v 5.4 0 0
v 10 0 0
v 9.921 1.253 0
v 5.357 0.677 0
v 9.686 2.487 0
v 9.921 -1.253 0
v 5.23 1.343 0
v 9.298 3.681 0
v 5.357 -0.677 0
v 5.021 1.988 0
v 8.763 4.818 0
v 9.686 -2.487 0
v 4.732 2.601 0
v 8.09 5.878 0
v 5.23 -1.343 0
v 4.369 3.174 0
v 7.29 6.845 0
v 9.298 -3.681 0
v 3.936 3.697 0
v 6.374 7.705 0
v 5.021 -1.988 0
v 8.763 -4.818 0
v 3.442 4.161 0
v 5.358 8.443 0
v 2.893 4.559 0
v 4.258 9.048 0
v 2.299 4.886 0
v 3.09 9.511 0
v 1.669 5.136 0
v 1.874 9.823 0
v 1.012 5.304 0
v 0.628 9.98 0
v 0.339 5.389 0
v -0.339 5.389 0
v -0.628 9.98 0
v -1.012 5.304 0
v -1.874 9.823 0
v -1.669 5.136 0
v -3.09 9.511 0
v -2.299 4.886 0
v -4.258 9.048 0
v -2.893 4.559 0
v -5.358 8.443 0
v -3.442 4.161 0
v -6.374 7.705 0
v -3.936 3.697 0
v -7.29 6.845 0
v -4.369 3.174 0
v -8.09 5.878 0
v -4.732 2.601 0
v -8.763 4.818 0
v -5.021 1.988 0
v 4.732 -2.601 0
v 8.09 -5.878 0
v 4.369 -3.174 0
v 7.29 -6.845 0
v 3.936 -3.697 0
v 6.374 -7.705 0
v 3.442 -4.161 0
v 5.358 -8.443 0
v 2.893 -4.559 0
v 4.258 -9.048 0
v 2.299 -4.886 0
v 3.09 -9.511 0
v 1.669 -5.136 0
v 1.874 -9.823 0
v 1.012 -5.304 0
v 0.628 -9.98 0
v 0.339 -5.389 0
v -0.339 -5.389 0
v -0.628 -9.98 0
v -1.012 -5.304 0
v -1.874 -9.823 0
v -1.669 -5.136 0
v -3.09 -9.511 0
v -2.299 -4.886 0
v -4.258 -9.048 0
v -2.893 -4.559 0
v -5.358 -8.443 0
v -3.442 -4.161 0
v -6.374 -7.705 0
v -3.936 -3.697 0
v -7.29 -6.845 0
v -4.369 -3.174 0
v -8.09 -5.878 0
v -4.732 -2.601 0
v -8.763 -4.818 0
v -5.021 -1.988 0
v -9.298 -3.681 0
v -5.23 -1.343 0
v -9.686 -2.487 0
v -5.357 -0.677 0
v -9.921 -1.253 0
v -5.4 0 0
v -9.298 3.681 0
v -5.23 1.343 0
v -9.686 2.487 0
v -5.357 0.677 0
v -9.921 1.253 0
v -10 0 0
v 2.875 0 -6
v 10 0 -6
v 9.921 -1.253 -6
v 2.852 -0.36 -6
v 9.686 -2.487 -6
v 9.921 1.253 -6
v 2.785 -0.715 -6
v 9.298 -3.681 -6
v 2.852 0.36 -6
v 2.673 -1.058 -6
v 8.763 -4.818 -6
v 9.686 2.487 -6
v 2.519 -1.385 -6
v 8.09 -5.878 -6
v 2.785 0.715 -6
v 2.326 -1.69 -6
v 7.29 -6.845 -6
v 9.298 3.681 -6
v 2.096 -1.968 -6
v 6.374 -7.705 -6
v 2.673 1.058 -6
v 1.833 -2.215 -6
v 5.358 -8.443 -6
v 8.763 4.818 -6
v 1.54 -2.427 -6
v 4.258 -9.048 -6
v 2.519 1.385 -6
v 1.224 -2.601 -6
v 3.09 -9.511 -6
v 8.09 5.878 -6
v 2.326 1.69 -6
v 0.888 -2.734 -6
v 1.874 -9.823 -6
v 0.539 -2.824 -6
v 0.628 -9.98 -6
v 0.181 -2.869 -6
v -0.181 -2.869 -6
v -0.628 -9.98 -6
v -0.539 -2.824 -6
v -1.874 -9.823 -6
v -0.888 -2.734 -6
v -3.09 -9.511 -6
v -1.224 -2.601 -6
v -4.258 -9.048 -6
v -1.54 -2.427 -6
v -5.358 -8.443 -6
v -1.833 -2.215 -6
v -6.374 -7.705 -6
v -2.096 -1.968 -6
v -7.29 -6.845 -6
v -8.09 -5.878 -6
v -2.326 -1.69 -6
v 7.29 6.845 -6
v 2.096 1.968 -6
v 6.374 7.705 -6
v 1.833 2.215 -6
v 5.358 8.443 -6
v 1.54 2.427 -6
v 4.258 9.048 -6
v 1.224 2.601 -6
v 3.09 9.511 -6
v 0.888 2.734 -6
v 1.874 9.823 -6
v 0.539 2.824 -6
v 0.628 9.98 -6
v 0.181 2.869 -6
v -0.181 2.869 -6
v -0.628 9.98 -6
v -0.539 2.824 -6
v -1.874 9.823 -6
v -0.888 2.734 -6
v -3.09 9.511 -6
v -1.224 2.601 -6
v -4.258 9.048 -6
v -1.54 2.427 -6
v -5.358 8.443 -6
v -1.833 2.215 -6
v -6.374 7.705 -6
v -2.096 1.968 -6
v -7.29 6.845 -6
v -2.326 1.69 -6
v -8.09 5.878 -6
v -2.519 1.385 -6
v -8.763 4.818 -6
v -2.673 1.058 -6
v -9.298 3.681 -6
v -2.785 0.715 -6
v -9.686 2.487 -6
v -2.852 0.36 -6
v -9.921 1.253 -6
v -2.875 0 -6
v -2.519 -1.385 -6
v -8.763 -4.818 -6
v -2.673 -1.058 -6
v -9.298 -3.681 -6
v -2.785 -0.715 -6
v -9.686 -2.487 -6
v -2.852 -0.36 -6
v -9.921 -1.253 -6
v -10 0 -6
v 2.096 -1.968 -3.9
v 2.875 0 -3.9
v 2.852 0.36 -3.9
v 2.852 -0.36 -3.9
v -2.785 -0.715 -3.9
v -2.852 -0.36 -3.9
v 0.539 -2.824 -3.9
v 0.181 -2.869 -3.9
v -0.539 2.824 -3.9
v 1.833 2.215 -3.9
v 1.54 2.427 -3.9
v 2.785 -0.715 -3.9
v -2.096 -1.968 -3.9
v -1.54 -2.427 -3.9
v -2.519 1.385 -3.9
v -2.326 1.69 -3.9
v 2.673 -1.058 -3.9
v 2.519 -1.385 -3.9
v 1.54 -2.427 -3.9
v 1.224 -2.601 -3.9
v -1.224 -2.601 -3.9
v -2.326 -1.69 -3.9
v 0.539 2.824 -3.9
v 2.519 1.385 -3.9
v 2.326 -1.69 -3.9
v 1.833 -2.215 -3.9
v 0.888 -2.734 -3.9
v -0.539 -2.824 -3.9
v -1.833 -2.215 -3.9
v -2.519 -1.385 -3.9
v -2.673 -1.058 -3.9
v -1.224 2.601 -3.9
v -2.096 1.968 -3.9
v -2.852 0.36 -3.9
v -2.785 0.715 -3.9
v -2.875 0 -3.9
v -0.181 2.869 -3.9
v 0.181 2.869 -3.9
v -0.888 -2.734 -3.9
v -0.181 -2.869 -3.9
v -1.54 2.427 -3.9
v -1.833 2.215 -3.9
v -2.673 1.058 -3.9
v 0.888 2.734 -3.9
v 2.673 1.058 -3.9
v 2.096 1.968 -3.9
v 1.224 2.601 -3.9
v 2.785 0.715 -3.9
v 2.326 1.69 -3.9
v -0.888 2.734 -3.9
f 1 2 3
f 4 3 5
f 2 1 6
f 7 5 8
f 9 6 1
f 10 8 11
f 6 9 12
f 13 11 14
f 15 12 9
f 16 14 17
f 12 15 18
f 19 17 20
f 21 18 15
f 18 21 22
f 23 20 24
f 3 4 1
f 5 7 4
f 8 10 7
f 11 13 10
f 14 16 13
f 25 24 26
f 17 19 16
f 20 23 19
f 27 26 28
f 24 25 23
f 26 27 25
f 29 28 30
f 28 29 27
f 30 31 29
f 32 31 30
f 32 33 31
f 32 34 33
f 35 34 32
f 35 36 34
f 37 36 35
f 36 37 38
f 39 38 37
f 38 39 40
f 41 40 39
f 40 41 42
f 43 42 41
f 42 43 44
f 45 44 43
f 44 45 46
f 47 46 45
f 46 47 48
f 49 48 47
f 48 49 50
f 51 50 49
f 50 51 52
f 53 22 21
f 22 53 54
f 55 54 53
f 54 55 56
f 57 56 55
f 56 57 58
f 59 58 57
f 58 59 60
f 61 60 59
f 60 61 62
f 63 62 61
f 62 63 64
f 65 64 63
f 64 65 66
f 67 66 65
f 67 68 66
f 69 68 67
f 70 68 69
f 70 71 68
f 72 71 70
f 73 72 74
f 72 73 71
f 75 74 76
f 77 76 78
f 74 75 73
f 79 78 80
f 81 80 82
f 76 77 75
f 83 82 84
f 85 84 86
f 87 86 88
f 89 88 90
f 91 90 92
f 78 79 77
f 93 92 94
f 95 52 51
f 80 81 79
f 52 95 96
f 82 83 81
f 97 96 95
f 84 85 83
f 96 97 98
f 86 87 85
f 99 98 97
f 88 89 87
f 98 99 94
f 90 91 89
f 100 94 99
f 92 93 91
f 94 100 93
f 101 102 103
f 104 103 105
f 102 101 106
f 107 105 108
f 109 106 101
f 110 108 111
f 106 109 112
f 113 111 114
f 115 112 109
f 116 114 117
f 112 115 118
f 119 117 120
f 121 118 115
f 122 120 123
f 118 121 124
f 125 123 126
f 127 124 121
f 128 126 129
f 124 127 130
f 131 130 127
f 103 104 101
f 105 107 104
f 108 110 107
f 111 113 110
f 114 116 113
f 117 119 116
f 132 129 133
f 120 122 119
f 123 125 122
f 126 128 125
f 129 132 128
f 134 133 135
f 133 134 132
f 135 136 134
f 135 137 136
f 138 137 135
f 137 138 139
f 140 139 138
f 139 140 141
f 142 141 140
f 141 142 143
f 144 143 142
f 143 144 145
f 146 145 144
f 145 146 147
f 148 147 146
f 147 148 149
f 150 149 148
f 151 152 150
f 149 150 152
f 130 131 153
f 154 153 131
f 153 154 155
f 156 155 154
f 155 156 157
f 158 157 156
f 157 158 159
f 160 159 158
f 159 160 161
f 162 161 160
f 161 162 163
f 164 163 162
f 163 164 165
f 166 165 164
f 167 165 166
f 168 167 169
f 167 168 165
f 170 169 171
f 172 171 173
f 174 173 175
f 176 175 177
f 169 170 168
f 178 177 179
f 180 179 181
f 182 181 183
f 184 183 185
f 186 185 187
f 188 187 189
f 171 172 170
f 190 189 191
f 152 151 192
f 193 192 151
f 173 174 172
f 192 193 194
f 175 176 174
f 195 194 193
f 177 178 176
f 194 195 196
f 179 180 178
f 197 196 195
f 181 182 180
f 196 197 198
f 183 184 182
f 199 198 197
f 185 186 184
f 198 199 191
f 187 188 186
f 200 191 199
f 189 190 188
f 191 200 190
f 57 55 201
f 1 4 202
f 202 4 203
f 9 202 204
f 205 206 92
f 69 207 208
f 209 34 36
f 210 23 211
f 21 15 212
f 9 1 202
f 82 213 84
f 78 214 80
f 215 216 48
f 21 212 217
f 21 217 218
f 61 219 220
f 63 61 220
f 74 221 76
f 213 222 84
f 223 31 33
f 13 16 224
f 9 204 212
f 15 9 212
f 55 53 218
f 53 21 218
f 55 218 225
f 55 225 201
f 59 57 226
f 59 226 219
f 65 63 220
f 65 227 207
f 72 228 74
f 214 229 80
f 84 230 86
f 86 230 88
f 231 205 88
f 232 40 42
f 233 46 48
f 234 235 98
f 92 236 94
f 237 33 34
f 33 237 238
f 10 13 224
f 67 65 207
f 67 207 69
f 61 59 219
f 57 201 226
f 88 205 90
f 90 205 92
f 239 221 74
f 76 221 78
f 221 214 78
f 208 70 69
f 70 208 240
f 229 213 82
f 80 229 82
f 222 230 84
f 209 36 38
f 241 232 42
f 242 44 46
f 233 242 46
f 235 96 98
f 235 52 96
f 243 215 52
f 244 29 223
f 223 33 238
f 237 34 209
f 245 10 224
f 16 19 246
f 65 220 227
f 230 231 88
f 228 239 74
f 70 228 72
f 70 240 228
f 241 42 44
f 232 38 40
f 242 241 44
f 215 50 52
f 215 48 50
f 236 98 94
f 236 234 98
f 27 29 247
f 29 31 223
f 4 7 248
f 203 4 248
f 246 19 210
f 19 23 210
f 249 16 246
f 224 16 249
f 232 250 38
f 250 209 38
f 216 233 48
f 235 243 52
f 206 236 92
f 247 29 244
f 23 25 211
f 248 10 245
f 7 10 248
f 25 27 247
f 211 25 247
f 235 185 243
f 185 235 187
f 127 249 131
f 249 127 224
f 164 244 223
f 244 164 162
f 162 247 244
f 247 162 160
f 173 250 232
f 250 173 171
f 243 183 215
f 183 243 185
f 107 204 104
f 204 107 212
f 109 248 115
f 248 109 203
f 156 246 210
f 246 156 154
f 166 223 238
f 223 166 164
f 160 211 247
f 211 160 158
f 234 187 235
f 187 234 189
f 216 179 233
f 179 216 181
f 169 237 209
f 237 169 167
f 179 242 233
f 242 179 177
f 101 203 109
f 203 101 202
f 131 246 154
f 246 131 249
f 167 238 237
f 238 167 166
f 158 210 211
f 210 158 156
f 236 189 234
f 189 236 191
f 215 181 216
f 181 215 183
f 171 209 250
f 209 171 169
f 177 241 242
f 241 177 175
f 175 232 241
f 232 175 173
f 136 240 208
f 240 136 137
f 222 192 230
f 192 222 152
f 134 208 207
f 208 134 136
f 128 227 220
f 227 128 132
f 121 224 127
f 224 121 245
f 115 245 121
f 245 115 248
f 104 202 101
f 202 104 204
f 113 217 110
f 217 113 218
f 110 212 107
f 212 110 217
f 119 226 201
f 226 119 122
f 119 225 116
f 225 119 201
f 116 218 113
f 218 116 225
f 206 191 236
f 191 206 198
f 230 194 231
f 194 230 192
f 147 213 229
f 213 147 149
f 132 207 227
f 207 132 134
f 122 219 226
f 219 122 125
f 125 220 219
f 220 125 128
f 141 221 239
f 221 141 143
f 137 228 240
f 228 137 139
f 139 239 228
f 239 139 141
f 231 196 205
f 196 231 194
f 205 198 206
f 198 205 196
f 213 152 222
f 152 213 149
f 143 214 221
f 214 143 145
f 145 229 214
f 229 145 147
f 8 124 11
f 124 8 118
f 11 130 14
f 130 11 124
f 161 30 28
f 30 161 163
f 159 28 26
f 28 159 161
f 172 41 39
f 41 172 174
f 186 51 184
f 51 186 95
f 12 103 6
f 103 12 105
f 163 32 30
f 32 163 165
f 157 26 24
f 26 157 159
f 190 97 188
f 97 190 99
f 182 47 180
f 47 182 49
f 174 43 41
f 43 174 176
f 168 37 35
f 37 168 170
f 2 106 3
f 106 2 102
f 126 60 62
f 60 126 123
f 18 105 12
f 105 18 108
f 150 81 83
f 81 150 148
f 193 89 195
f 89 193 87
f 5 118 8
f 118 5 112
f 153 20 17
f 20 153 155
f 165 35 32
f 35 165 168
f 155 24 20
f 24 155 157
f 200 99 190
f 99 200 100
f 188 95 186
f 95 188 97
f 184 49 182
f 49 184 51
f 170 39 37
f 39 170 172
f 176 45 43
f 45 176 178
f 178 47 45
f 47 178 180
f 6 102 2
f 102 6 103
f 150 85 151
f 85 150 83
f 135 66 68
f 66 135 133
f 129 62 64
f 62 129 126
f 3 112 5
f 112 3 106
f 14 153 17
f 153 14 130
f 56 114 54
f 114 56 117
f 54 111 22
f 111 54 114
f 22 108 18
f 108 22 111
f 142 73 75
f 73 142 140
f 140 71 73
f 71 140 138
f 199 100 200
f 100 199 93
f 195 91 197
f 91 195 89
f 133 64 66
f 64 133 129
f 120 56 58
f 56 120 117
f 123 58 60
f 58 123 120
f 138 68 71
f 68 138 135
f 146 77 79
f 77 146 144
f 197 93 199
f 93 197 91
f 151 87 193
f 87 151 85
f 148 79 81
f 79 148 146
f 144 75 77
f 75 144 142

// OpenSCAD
$fn = 50;


difference() {
	union() {
		translate(v = [0, 0, -6.0000000000]) {
			cylinder(h = 6, r = 10.0000000000);
		}
		cylinder(h = 0, r = 13.0000000000);
	}
	union() {
		translate(v = [0, 0, 0]) {
			rotate(a = [0, 0, 0]) {
				difference() {
					union() {
						#translate(v = [0, 0, -6.0000000000]) {
							cylinder(h = 6, r = 2.6000000000);
						}
						#translate(v = [0, 0, -3.9000000000]) {
							cylinder(h = 3.9000000000, r = 10.0000000000, r1 = 2.8750000000, r2 = 5.4000000000);
						}
						#translate(v = [0, 0, -6.0000000000]) {
							cylinder(h = 6, r = 2.8750000000);
						}
						#translate(v = [0, 0, -6.0000000000]) {
							cylinder(h = 6, r = 2.6000000000);
						}
					}
					union();
				}
			}
		}
	}
}
